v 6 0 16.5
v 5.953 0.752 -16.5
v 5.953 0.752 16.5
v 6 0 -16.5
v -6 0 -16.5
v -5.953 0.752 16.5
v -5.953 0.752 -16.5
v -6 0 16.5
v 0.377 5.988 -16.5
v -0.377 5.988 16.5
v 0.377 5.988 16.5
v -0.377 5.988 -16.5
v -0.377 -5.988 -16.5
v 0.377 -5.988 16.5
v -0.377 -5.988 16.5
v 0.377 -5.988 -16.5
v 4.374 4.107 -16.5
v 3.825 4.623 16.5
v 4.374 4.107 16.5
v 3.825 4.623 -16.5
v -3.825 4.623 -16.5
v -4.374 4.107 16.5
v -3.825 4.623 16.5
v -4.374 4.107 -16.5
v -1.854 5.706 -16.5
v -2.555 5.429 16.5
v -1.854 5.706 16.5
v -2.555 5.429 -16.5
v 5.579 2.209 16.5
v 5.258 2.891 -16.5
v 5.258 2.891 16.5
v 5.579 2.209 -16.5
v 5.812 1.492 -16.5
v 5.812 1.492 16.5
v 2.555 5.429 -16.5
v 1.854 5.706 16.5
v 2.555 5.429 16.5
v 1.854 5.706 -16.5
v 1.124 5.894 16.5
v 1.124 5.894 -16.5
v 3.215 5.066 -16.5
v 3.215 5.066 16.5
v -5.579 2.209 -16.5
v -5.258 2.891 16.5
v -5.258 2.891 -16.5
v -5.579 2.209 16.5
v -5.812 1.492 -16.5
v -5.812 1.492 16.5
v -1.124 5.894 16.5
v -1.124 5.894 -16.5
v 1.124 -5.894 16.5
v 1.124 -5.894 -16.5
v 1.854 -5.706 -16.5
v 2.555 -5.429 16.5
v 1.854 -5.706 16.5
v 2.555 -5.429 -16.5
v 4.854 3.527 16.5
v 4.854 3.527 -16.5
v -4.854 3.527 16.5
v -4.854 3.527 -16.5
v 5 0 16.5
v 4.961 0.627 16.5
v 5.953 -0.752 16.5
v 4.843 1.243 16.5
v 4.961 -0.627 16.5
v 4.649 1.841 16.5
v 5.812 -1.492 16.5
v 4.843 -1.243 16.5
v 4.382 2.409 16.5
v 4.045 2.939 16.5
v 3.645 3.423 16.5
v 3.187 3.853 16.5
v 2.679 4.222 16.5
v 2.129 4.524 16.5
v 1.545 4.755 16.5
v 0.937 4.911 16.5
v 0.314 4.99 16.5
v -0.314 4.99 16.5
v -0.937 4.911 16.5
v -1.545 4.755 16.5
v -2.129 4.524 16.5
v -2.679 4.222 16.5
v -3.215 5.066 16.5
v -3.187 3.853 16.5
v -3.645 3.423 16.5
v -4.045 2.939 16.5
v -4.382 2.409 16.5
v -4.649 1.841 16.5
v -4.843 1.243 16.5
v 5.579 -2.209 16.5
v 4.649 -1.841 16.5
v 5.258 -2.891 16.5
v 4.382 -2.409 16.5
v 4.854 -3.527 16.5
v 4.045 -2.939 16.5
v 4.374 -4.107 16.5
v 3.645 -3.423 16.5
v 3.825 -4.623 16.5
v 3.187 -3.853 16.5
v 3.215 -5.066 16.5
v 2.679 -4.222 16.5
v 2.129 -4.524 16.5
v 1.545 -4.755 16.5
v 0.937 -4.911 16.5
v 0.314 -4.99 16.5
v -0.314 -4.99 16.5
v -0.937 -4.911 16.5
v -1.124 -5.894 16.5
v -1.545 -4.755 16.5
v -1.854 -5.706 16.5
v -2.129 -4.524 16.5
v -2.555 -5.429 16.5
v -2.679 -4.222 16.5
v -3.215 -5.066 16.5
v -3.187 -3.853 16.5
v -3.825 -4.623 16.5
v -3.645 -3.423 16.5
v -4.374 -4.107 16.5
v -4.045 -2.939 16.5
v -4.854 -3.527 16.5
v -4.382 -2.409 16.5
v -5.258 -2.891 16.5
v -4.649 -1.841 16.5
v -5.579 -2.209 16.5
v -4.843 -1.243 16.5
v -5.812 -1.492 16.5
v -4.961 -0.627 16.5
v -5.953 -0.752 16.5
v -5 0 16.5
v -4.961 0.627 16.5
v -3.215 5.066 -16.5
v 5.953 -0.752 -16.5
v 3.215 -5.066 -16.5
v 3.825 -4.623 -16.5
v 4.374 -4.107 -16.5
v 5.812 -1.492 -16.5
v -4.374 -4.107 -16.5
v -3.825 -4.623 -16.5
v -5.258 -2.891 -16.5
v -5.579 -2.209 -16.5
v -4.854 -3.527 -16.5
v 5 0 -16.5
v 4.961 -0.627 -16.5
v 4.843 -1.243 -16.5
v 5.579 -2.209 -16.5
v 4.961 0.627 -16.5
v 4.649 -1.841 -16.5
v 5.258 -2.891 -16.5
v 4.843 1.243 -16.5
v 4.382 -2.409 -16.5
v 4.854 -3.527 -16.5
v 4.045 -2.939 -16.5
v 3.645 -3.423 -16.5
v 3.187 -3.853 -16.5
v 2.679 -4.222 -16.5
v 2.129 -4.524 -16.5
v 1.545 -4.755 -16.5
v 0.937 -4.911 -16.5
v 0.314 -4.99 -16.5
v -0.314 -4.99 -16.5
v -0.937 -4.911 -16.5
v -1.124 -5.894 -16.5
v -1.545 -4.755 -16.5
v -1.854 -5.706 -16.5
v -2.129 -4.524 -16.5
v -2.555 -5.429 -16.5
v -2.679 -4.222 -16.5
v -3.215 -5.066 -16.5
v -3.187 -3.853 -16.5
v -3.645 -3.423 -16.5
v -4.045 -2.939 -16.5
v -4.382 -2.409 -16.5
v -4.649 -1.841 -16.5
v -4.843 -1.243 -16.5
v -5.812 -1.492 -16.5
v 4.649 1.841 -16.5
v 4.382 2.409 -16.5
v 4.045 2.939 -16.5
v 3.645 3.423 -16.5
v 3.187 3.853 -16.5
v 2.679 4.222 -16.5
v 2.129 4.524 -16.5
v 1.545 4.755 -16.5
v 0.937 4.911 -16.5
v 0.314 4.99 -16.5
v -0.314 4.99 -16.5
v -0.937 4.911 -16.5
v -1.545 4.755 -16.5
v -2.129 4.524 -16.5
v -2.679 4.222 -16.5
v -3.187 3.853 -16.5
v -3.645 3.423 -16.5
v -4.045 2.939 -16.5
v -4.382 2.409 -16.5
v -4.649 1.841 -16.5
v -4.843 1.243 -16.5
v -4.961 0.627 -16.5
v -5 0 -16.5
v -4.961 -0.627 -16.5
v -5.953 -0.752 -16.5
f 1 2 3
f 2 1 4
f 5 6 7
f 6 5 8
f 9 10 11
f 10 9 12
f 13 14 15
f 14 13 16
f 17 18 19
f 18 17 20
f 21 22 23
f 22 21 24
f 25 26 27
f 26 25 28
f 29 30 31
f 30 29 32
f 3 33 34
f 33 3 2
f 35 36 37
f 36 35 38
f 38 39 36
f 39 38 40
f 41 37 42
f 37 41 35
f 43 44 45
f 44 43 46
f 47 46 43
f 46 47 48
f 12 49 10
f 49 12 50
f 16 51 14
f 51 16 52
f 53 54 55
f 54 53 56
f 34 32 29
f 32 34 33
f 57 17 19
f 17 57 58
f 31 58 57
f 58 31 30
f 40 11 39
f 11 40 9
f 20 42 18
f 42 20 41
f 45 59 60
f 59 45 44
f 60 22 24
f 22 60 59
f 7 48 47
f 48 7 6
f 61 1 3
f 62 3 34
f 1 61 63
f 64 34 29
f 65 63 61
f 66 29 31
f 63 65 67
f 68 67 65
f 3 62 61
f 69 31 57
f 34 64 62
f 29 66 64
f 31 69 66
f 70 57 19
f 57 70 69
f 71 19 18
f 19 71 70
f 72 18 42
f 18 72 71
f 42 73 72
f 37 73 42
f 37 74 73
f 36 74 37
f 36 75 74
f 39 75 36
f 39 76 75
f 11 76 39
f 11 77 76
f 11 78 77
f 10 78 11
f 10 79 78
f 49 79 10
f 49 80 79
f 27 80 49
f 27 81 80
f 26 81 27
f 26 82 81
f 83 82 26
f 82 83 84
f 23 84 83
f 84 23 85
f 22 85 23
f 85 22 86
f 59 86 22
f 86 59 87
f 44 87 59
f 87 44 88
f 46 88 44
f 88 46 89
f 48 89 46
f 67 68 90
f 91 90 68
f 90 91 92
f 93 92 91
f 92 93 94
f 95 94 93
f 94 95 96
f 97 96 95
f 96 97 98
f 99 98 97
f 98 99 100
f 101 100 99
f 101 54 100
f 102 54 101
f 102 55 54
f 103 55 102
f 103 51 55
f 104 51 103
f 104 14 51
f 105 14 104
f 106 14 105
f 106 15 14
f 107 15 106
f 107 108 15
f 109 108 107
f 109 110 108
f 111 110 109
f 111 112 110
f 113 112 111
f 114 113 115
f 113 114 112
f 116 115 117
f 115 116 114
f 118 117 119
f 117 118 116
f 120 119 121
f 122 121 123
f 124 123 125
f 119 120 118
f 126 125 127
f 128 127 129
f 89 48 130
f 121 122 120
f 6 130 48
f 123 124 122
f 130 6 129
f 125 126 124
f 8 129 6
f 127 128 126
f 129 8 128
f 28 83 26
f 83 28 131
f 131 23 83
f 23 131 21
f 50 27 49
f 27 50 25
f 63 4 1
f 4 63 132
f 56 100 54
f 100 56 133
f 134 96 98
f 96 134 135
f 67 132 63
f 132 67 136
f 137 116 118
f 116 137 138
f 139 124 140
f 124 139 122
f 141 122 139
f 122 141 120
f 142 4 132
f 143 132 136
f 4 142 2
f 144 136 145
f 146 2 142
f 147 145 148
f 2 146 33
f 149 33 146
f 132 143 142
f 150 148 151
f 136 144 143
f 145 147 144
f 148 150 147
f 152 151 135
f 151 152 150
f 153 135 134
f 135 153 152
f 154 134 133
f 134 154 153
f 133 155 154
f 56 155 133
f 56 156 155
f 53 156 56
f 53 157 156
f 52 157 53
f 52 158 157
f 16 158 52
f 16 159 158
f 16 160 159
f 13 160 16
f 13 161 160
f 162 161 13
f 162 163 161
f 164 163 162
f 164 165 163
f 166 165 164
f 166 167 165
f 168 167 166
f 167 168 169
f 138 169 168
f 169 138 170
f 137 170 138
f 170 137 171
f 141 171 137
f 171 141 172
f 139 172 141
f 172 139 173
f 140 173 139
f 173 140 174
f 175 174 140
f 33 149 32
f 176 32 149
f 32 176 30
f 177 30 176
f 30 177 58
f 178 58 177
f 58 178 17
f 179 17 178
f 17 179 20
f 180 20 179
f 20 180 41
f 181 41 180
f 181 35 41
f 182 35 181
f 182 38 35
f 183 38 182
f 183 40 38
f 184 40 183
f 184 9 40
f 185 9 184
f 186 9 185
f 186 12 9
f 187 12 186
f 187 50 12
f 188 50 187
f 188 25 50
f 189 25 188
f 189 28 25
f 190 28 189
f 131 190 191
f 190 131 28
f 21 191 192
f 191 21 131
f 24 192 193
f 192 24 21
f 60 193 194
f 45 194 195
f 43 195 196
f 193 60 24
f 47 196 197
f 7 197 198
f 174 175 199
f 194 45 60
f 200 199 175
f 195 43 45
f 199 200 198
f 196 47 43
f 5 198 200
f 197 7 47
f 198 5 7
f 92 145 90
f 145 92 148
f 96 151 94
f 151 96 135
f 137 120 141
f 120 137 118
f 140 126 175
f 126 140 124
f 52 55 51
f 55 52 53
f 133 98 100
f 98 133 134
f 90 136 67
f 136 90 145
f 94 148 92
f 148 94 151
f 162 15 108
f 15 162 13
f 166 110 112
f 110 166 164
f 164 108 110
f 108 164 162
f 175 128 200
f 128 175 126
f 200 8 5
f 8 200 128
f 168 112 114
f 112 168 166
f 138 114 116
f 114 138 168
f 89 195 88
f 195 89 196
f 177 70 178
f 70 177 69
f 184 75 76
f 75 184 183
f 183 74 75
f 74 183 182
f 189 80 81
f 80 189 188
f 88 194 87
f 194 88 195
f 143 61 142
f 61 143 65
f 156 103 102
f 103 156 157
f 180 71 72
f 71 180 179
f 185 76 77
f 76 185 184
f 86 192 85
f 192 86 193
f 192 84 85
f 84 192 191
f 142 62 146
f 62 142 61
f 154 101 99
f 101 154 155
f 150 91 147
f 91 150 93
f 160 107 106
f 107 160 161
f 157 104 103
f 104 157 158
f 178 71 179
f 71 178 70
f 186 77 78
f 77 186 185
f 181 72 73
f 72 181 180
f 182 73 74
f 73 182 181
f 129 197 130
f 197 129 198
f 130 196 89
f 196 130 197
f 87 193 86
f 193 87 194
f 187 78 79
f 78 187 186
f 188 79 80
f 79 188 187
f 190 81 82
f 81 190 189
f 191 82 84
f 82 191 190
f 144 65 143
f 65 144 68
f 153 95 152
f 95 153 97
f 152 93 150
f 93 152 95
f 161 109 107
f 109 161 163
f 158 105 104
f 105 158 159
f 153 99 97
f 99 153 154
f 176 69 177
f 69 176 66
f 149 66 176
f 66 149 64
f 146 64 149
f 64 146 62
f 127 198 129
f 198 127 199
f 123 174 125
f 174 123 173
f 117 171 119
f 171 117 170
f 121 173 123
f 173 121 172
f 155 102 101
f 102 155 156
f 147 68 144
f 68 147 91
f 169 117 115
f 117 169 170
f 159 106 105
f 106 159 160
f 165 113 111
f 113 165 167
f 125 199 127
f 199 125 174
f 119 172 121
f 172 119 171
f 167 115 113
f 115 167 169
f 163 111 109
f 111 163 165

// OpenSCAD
$fn = 50;


difference() {
	union() {
		translate(v = [0, 0, -16.5000000000]) {
			cylinder(h = 33, r = 6.0000000000);
		}
	}
	union() {
		translate(v = [0, 0, -100.0000000000]) {
			cylinder(h = 200, r = 5);
		}
	}
}
